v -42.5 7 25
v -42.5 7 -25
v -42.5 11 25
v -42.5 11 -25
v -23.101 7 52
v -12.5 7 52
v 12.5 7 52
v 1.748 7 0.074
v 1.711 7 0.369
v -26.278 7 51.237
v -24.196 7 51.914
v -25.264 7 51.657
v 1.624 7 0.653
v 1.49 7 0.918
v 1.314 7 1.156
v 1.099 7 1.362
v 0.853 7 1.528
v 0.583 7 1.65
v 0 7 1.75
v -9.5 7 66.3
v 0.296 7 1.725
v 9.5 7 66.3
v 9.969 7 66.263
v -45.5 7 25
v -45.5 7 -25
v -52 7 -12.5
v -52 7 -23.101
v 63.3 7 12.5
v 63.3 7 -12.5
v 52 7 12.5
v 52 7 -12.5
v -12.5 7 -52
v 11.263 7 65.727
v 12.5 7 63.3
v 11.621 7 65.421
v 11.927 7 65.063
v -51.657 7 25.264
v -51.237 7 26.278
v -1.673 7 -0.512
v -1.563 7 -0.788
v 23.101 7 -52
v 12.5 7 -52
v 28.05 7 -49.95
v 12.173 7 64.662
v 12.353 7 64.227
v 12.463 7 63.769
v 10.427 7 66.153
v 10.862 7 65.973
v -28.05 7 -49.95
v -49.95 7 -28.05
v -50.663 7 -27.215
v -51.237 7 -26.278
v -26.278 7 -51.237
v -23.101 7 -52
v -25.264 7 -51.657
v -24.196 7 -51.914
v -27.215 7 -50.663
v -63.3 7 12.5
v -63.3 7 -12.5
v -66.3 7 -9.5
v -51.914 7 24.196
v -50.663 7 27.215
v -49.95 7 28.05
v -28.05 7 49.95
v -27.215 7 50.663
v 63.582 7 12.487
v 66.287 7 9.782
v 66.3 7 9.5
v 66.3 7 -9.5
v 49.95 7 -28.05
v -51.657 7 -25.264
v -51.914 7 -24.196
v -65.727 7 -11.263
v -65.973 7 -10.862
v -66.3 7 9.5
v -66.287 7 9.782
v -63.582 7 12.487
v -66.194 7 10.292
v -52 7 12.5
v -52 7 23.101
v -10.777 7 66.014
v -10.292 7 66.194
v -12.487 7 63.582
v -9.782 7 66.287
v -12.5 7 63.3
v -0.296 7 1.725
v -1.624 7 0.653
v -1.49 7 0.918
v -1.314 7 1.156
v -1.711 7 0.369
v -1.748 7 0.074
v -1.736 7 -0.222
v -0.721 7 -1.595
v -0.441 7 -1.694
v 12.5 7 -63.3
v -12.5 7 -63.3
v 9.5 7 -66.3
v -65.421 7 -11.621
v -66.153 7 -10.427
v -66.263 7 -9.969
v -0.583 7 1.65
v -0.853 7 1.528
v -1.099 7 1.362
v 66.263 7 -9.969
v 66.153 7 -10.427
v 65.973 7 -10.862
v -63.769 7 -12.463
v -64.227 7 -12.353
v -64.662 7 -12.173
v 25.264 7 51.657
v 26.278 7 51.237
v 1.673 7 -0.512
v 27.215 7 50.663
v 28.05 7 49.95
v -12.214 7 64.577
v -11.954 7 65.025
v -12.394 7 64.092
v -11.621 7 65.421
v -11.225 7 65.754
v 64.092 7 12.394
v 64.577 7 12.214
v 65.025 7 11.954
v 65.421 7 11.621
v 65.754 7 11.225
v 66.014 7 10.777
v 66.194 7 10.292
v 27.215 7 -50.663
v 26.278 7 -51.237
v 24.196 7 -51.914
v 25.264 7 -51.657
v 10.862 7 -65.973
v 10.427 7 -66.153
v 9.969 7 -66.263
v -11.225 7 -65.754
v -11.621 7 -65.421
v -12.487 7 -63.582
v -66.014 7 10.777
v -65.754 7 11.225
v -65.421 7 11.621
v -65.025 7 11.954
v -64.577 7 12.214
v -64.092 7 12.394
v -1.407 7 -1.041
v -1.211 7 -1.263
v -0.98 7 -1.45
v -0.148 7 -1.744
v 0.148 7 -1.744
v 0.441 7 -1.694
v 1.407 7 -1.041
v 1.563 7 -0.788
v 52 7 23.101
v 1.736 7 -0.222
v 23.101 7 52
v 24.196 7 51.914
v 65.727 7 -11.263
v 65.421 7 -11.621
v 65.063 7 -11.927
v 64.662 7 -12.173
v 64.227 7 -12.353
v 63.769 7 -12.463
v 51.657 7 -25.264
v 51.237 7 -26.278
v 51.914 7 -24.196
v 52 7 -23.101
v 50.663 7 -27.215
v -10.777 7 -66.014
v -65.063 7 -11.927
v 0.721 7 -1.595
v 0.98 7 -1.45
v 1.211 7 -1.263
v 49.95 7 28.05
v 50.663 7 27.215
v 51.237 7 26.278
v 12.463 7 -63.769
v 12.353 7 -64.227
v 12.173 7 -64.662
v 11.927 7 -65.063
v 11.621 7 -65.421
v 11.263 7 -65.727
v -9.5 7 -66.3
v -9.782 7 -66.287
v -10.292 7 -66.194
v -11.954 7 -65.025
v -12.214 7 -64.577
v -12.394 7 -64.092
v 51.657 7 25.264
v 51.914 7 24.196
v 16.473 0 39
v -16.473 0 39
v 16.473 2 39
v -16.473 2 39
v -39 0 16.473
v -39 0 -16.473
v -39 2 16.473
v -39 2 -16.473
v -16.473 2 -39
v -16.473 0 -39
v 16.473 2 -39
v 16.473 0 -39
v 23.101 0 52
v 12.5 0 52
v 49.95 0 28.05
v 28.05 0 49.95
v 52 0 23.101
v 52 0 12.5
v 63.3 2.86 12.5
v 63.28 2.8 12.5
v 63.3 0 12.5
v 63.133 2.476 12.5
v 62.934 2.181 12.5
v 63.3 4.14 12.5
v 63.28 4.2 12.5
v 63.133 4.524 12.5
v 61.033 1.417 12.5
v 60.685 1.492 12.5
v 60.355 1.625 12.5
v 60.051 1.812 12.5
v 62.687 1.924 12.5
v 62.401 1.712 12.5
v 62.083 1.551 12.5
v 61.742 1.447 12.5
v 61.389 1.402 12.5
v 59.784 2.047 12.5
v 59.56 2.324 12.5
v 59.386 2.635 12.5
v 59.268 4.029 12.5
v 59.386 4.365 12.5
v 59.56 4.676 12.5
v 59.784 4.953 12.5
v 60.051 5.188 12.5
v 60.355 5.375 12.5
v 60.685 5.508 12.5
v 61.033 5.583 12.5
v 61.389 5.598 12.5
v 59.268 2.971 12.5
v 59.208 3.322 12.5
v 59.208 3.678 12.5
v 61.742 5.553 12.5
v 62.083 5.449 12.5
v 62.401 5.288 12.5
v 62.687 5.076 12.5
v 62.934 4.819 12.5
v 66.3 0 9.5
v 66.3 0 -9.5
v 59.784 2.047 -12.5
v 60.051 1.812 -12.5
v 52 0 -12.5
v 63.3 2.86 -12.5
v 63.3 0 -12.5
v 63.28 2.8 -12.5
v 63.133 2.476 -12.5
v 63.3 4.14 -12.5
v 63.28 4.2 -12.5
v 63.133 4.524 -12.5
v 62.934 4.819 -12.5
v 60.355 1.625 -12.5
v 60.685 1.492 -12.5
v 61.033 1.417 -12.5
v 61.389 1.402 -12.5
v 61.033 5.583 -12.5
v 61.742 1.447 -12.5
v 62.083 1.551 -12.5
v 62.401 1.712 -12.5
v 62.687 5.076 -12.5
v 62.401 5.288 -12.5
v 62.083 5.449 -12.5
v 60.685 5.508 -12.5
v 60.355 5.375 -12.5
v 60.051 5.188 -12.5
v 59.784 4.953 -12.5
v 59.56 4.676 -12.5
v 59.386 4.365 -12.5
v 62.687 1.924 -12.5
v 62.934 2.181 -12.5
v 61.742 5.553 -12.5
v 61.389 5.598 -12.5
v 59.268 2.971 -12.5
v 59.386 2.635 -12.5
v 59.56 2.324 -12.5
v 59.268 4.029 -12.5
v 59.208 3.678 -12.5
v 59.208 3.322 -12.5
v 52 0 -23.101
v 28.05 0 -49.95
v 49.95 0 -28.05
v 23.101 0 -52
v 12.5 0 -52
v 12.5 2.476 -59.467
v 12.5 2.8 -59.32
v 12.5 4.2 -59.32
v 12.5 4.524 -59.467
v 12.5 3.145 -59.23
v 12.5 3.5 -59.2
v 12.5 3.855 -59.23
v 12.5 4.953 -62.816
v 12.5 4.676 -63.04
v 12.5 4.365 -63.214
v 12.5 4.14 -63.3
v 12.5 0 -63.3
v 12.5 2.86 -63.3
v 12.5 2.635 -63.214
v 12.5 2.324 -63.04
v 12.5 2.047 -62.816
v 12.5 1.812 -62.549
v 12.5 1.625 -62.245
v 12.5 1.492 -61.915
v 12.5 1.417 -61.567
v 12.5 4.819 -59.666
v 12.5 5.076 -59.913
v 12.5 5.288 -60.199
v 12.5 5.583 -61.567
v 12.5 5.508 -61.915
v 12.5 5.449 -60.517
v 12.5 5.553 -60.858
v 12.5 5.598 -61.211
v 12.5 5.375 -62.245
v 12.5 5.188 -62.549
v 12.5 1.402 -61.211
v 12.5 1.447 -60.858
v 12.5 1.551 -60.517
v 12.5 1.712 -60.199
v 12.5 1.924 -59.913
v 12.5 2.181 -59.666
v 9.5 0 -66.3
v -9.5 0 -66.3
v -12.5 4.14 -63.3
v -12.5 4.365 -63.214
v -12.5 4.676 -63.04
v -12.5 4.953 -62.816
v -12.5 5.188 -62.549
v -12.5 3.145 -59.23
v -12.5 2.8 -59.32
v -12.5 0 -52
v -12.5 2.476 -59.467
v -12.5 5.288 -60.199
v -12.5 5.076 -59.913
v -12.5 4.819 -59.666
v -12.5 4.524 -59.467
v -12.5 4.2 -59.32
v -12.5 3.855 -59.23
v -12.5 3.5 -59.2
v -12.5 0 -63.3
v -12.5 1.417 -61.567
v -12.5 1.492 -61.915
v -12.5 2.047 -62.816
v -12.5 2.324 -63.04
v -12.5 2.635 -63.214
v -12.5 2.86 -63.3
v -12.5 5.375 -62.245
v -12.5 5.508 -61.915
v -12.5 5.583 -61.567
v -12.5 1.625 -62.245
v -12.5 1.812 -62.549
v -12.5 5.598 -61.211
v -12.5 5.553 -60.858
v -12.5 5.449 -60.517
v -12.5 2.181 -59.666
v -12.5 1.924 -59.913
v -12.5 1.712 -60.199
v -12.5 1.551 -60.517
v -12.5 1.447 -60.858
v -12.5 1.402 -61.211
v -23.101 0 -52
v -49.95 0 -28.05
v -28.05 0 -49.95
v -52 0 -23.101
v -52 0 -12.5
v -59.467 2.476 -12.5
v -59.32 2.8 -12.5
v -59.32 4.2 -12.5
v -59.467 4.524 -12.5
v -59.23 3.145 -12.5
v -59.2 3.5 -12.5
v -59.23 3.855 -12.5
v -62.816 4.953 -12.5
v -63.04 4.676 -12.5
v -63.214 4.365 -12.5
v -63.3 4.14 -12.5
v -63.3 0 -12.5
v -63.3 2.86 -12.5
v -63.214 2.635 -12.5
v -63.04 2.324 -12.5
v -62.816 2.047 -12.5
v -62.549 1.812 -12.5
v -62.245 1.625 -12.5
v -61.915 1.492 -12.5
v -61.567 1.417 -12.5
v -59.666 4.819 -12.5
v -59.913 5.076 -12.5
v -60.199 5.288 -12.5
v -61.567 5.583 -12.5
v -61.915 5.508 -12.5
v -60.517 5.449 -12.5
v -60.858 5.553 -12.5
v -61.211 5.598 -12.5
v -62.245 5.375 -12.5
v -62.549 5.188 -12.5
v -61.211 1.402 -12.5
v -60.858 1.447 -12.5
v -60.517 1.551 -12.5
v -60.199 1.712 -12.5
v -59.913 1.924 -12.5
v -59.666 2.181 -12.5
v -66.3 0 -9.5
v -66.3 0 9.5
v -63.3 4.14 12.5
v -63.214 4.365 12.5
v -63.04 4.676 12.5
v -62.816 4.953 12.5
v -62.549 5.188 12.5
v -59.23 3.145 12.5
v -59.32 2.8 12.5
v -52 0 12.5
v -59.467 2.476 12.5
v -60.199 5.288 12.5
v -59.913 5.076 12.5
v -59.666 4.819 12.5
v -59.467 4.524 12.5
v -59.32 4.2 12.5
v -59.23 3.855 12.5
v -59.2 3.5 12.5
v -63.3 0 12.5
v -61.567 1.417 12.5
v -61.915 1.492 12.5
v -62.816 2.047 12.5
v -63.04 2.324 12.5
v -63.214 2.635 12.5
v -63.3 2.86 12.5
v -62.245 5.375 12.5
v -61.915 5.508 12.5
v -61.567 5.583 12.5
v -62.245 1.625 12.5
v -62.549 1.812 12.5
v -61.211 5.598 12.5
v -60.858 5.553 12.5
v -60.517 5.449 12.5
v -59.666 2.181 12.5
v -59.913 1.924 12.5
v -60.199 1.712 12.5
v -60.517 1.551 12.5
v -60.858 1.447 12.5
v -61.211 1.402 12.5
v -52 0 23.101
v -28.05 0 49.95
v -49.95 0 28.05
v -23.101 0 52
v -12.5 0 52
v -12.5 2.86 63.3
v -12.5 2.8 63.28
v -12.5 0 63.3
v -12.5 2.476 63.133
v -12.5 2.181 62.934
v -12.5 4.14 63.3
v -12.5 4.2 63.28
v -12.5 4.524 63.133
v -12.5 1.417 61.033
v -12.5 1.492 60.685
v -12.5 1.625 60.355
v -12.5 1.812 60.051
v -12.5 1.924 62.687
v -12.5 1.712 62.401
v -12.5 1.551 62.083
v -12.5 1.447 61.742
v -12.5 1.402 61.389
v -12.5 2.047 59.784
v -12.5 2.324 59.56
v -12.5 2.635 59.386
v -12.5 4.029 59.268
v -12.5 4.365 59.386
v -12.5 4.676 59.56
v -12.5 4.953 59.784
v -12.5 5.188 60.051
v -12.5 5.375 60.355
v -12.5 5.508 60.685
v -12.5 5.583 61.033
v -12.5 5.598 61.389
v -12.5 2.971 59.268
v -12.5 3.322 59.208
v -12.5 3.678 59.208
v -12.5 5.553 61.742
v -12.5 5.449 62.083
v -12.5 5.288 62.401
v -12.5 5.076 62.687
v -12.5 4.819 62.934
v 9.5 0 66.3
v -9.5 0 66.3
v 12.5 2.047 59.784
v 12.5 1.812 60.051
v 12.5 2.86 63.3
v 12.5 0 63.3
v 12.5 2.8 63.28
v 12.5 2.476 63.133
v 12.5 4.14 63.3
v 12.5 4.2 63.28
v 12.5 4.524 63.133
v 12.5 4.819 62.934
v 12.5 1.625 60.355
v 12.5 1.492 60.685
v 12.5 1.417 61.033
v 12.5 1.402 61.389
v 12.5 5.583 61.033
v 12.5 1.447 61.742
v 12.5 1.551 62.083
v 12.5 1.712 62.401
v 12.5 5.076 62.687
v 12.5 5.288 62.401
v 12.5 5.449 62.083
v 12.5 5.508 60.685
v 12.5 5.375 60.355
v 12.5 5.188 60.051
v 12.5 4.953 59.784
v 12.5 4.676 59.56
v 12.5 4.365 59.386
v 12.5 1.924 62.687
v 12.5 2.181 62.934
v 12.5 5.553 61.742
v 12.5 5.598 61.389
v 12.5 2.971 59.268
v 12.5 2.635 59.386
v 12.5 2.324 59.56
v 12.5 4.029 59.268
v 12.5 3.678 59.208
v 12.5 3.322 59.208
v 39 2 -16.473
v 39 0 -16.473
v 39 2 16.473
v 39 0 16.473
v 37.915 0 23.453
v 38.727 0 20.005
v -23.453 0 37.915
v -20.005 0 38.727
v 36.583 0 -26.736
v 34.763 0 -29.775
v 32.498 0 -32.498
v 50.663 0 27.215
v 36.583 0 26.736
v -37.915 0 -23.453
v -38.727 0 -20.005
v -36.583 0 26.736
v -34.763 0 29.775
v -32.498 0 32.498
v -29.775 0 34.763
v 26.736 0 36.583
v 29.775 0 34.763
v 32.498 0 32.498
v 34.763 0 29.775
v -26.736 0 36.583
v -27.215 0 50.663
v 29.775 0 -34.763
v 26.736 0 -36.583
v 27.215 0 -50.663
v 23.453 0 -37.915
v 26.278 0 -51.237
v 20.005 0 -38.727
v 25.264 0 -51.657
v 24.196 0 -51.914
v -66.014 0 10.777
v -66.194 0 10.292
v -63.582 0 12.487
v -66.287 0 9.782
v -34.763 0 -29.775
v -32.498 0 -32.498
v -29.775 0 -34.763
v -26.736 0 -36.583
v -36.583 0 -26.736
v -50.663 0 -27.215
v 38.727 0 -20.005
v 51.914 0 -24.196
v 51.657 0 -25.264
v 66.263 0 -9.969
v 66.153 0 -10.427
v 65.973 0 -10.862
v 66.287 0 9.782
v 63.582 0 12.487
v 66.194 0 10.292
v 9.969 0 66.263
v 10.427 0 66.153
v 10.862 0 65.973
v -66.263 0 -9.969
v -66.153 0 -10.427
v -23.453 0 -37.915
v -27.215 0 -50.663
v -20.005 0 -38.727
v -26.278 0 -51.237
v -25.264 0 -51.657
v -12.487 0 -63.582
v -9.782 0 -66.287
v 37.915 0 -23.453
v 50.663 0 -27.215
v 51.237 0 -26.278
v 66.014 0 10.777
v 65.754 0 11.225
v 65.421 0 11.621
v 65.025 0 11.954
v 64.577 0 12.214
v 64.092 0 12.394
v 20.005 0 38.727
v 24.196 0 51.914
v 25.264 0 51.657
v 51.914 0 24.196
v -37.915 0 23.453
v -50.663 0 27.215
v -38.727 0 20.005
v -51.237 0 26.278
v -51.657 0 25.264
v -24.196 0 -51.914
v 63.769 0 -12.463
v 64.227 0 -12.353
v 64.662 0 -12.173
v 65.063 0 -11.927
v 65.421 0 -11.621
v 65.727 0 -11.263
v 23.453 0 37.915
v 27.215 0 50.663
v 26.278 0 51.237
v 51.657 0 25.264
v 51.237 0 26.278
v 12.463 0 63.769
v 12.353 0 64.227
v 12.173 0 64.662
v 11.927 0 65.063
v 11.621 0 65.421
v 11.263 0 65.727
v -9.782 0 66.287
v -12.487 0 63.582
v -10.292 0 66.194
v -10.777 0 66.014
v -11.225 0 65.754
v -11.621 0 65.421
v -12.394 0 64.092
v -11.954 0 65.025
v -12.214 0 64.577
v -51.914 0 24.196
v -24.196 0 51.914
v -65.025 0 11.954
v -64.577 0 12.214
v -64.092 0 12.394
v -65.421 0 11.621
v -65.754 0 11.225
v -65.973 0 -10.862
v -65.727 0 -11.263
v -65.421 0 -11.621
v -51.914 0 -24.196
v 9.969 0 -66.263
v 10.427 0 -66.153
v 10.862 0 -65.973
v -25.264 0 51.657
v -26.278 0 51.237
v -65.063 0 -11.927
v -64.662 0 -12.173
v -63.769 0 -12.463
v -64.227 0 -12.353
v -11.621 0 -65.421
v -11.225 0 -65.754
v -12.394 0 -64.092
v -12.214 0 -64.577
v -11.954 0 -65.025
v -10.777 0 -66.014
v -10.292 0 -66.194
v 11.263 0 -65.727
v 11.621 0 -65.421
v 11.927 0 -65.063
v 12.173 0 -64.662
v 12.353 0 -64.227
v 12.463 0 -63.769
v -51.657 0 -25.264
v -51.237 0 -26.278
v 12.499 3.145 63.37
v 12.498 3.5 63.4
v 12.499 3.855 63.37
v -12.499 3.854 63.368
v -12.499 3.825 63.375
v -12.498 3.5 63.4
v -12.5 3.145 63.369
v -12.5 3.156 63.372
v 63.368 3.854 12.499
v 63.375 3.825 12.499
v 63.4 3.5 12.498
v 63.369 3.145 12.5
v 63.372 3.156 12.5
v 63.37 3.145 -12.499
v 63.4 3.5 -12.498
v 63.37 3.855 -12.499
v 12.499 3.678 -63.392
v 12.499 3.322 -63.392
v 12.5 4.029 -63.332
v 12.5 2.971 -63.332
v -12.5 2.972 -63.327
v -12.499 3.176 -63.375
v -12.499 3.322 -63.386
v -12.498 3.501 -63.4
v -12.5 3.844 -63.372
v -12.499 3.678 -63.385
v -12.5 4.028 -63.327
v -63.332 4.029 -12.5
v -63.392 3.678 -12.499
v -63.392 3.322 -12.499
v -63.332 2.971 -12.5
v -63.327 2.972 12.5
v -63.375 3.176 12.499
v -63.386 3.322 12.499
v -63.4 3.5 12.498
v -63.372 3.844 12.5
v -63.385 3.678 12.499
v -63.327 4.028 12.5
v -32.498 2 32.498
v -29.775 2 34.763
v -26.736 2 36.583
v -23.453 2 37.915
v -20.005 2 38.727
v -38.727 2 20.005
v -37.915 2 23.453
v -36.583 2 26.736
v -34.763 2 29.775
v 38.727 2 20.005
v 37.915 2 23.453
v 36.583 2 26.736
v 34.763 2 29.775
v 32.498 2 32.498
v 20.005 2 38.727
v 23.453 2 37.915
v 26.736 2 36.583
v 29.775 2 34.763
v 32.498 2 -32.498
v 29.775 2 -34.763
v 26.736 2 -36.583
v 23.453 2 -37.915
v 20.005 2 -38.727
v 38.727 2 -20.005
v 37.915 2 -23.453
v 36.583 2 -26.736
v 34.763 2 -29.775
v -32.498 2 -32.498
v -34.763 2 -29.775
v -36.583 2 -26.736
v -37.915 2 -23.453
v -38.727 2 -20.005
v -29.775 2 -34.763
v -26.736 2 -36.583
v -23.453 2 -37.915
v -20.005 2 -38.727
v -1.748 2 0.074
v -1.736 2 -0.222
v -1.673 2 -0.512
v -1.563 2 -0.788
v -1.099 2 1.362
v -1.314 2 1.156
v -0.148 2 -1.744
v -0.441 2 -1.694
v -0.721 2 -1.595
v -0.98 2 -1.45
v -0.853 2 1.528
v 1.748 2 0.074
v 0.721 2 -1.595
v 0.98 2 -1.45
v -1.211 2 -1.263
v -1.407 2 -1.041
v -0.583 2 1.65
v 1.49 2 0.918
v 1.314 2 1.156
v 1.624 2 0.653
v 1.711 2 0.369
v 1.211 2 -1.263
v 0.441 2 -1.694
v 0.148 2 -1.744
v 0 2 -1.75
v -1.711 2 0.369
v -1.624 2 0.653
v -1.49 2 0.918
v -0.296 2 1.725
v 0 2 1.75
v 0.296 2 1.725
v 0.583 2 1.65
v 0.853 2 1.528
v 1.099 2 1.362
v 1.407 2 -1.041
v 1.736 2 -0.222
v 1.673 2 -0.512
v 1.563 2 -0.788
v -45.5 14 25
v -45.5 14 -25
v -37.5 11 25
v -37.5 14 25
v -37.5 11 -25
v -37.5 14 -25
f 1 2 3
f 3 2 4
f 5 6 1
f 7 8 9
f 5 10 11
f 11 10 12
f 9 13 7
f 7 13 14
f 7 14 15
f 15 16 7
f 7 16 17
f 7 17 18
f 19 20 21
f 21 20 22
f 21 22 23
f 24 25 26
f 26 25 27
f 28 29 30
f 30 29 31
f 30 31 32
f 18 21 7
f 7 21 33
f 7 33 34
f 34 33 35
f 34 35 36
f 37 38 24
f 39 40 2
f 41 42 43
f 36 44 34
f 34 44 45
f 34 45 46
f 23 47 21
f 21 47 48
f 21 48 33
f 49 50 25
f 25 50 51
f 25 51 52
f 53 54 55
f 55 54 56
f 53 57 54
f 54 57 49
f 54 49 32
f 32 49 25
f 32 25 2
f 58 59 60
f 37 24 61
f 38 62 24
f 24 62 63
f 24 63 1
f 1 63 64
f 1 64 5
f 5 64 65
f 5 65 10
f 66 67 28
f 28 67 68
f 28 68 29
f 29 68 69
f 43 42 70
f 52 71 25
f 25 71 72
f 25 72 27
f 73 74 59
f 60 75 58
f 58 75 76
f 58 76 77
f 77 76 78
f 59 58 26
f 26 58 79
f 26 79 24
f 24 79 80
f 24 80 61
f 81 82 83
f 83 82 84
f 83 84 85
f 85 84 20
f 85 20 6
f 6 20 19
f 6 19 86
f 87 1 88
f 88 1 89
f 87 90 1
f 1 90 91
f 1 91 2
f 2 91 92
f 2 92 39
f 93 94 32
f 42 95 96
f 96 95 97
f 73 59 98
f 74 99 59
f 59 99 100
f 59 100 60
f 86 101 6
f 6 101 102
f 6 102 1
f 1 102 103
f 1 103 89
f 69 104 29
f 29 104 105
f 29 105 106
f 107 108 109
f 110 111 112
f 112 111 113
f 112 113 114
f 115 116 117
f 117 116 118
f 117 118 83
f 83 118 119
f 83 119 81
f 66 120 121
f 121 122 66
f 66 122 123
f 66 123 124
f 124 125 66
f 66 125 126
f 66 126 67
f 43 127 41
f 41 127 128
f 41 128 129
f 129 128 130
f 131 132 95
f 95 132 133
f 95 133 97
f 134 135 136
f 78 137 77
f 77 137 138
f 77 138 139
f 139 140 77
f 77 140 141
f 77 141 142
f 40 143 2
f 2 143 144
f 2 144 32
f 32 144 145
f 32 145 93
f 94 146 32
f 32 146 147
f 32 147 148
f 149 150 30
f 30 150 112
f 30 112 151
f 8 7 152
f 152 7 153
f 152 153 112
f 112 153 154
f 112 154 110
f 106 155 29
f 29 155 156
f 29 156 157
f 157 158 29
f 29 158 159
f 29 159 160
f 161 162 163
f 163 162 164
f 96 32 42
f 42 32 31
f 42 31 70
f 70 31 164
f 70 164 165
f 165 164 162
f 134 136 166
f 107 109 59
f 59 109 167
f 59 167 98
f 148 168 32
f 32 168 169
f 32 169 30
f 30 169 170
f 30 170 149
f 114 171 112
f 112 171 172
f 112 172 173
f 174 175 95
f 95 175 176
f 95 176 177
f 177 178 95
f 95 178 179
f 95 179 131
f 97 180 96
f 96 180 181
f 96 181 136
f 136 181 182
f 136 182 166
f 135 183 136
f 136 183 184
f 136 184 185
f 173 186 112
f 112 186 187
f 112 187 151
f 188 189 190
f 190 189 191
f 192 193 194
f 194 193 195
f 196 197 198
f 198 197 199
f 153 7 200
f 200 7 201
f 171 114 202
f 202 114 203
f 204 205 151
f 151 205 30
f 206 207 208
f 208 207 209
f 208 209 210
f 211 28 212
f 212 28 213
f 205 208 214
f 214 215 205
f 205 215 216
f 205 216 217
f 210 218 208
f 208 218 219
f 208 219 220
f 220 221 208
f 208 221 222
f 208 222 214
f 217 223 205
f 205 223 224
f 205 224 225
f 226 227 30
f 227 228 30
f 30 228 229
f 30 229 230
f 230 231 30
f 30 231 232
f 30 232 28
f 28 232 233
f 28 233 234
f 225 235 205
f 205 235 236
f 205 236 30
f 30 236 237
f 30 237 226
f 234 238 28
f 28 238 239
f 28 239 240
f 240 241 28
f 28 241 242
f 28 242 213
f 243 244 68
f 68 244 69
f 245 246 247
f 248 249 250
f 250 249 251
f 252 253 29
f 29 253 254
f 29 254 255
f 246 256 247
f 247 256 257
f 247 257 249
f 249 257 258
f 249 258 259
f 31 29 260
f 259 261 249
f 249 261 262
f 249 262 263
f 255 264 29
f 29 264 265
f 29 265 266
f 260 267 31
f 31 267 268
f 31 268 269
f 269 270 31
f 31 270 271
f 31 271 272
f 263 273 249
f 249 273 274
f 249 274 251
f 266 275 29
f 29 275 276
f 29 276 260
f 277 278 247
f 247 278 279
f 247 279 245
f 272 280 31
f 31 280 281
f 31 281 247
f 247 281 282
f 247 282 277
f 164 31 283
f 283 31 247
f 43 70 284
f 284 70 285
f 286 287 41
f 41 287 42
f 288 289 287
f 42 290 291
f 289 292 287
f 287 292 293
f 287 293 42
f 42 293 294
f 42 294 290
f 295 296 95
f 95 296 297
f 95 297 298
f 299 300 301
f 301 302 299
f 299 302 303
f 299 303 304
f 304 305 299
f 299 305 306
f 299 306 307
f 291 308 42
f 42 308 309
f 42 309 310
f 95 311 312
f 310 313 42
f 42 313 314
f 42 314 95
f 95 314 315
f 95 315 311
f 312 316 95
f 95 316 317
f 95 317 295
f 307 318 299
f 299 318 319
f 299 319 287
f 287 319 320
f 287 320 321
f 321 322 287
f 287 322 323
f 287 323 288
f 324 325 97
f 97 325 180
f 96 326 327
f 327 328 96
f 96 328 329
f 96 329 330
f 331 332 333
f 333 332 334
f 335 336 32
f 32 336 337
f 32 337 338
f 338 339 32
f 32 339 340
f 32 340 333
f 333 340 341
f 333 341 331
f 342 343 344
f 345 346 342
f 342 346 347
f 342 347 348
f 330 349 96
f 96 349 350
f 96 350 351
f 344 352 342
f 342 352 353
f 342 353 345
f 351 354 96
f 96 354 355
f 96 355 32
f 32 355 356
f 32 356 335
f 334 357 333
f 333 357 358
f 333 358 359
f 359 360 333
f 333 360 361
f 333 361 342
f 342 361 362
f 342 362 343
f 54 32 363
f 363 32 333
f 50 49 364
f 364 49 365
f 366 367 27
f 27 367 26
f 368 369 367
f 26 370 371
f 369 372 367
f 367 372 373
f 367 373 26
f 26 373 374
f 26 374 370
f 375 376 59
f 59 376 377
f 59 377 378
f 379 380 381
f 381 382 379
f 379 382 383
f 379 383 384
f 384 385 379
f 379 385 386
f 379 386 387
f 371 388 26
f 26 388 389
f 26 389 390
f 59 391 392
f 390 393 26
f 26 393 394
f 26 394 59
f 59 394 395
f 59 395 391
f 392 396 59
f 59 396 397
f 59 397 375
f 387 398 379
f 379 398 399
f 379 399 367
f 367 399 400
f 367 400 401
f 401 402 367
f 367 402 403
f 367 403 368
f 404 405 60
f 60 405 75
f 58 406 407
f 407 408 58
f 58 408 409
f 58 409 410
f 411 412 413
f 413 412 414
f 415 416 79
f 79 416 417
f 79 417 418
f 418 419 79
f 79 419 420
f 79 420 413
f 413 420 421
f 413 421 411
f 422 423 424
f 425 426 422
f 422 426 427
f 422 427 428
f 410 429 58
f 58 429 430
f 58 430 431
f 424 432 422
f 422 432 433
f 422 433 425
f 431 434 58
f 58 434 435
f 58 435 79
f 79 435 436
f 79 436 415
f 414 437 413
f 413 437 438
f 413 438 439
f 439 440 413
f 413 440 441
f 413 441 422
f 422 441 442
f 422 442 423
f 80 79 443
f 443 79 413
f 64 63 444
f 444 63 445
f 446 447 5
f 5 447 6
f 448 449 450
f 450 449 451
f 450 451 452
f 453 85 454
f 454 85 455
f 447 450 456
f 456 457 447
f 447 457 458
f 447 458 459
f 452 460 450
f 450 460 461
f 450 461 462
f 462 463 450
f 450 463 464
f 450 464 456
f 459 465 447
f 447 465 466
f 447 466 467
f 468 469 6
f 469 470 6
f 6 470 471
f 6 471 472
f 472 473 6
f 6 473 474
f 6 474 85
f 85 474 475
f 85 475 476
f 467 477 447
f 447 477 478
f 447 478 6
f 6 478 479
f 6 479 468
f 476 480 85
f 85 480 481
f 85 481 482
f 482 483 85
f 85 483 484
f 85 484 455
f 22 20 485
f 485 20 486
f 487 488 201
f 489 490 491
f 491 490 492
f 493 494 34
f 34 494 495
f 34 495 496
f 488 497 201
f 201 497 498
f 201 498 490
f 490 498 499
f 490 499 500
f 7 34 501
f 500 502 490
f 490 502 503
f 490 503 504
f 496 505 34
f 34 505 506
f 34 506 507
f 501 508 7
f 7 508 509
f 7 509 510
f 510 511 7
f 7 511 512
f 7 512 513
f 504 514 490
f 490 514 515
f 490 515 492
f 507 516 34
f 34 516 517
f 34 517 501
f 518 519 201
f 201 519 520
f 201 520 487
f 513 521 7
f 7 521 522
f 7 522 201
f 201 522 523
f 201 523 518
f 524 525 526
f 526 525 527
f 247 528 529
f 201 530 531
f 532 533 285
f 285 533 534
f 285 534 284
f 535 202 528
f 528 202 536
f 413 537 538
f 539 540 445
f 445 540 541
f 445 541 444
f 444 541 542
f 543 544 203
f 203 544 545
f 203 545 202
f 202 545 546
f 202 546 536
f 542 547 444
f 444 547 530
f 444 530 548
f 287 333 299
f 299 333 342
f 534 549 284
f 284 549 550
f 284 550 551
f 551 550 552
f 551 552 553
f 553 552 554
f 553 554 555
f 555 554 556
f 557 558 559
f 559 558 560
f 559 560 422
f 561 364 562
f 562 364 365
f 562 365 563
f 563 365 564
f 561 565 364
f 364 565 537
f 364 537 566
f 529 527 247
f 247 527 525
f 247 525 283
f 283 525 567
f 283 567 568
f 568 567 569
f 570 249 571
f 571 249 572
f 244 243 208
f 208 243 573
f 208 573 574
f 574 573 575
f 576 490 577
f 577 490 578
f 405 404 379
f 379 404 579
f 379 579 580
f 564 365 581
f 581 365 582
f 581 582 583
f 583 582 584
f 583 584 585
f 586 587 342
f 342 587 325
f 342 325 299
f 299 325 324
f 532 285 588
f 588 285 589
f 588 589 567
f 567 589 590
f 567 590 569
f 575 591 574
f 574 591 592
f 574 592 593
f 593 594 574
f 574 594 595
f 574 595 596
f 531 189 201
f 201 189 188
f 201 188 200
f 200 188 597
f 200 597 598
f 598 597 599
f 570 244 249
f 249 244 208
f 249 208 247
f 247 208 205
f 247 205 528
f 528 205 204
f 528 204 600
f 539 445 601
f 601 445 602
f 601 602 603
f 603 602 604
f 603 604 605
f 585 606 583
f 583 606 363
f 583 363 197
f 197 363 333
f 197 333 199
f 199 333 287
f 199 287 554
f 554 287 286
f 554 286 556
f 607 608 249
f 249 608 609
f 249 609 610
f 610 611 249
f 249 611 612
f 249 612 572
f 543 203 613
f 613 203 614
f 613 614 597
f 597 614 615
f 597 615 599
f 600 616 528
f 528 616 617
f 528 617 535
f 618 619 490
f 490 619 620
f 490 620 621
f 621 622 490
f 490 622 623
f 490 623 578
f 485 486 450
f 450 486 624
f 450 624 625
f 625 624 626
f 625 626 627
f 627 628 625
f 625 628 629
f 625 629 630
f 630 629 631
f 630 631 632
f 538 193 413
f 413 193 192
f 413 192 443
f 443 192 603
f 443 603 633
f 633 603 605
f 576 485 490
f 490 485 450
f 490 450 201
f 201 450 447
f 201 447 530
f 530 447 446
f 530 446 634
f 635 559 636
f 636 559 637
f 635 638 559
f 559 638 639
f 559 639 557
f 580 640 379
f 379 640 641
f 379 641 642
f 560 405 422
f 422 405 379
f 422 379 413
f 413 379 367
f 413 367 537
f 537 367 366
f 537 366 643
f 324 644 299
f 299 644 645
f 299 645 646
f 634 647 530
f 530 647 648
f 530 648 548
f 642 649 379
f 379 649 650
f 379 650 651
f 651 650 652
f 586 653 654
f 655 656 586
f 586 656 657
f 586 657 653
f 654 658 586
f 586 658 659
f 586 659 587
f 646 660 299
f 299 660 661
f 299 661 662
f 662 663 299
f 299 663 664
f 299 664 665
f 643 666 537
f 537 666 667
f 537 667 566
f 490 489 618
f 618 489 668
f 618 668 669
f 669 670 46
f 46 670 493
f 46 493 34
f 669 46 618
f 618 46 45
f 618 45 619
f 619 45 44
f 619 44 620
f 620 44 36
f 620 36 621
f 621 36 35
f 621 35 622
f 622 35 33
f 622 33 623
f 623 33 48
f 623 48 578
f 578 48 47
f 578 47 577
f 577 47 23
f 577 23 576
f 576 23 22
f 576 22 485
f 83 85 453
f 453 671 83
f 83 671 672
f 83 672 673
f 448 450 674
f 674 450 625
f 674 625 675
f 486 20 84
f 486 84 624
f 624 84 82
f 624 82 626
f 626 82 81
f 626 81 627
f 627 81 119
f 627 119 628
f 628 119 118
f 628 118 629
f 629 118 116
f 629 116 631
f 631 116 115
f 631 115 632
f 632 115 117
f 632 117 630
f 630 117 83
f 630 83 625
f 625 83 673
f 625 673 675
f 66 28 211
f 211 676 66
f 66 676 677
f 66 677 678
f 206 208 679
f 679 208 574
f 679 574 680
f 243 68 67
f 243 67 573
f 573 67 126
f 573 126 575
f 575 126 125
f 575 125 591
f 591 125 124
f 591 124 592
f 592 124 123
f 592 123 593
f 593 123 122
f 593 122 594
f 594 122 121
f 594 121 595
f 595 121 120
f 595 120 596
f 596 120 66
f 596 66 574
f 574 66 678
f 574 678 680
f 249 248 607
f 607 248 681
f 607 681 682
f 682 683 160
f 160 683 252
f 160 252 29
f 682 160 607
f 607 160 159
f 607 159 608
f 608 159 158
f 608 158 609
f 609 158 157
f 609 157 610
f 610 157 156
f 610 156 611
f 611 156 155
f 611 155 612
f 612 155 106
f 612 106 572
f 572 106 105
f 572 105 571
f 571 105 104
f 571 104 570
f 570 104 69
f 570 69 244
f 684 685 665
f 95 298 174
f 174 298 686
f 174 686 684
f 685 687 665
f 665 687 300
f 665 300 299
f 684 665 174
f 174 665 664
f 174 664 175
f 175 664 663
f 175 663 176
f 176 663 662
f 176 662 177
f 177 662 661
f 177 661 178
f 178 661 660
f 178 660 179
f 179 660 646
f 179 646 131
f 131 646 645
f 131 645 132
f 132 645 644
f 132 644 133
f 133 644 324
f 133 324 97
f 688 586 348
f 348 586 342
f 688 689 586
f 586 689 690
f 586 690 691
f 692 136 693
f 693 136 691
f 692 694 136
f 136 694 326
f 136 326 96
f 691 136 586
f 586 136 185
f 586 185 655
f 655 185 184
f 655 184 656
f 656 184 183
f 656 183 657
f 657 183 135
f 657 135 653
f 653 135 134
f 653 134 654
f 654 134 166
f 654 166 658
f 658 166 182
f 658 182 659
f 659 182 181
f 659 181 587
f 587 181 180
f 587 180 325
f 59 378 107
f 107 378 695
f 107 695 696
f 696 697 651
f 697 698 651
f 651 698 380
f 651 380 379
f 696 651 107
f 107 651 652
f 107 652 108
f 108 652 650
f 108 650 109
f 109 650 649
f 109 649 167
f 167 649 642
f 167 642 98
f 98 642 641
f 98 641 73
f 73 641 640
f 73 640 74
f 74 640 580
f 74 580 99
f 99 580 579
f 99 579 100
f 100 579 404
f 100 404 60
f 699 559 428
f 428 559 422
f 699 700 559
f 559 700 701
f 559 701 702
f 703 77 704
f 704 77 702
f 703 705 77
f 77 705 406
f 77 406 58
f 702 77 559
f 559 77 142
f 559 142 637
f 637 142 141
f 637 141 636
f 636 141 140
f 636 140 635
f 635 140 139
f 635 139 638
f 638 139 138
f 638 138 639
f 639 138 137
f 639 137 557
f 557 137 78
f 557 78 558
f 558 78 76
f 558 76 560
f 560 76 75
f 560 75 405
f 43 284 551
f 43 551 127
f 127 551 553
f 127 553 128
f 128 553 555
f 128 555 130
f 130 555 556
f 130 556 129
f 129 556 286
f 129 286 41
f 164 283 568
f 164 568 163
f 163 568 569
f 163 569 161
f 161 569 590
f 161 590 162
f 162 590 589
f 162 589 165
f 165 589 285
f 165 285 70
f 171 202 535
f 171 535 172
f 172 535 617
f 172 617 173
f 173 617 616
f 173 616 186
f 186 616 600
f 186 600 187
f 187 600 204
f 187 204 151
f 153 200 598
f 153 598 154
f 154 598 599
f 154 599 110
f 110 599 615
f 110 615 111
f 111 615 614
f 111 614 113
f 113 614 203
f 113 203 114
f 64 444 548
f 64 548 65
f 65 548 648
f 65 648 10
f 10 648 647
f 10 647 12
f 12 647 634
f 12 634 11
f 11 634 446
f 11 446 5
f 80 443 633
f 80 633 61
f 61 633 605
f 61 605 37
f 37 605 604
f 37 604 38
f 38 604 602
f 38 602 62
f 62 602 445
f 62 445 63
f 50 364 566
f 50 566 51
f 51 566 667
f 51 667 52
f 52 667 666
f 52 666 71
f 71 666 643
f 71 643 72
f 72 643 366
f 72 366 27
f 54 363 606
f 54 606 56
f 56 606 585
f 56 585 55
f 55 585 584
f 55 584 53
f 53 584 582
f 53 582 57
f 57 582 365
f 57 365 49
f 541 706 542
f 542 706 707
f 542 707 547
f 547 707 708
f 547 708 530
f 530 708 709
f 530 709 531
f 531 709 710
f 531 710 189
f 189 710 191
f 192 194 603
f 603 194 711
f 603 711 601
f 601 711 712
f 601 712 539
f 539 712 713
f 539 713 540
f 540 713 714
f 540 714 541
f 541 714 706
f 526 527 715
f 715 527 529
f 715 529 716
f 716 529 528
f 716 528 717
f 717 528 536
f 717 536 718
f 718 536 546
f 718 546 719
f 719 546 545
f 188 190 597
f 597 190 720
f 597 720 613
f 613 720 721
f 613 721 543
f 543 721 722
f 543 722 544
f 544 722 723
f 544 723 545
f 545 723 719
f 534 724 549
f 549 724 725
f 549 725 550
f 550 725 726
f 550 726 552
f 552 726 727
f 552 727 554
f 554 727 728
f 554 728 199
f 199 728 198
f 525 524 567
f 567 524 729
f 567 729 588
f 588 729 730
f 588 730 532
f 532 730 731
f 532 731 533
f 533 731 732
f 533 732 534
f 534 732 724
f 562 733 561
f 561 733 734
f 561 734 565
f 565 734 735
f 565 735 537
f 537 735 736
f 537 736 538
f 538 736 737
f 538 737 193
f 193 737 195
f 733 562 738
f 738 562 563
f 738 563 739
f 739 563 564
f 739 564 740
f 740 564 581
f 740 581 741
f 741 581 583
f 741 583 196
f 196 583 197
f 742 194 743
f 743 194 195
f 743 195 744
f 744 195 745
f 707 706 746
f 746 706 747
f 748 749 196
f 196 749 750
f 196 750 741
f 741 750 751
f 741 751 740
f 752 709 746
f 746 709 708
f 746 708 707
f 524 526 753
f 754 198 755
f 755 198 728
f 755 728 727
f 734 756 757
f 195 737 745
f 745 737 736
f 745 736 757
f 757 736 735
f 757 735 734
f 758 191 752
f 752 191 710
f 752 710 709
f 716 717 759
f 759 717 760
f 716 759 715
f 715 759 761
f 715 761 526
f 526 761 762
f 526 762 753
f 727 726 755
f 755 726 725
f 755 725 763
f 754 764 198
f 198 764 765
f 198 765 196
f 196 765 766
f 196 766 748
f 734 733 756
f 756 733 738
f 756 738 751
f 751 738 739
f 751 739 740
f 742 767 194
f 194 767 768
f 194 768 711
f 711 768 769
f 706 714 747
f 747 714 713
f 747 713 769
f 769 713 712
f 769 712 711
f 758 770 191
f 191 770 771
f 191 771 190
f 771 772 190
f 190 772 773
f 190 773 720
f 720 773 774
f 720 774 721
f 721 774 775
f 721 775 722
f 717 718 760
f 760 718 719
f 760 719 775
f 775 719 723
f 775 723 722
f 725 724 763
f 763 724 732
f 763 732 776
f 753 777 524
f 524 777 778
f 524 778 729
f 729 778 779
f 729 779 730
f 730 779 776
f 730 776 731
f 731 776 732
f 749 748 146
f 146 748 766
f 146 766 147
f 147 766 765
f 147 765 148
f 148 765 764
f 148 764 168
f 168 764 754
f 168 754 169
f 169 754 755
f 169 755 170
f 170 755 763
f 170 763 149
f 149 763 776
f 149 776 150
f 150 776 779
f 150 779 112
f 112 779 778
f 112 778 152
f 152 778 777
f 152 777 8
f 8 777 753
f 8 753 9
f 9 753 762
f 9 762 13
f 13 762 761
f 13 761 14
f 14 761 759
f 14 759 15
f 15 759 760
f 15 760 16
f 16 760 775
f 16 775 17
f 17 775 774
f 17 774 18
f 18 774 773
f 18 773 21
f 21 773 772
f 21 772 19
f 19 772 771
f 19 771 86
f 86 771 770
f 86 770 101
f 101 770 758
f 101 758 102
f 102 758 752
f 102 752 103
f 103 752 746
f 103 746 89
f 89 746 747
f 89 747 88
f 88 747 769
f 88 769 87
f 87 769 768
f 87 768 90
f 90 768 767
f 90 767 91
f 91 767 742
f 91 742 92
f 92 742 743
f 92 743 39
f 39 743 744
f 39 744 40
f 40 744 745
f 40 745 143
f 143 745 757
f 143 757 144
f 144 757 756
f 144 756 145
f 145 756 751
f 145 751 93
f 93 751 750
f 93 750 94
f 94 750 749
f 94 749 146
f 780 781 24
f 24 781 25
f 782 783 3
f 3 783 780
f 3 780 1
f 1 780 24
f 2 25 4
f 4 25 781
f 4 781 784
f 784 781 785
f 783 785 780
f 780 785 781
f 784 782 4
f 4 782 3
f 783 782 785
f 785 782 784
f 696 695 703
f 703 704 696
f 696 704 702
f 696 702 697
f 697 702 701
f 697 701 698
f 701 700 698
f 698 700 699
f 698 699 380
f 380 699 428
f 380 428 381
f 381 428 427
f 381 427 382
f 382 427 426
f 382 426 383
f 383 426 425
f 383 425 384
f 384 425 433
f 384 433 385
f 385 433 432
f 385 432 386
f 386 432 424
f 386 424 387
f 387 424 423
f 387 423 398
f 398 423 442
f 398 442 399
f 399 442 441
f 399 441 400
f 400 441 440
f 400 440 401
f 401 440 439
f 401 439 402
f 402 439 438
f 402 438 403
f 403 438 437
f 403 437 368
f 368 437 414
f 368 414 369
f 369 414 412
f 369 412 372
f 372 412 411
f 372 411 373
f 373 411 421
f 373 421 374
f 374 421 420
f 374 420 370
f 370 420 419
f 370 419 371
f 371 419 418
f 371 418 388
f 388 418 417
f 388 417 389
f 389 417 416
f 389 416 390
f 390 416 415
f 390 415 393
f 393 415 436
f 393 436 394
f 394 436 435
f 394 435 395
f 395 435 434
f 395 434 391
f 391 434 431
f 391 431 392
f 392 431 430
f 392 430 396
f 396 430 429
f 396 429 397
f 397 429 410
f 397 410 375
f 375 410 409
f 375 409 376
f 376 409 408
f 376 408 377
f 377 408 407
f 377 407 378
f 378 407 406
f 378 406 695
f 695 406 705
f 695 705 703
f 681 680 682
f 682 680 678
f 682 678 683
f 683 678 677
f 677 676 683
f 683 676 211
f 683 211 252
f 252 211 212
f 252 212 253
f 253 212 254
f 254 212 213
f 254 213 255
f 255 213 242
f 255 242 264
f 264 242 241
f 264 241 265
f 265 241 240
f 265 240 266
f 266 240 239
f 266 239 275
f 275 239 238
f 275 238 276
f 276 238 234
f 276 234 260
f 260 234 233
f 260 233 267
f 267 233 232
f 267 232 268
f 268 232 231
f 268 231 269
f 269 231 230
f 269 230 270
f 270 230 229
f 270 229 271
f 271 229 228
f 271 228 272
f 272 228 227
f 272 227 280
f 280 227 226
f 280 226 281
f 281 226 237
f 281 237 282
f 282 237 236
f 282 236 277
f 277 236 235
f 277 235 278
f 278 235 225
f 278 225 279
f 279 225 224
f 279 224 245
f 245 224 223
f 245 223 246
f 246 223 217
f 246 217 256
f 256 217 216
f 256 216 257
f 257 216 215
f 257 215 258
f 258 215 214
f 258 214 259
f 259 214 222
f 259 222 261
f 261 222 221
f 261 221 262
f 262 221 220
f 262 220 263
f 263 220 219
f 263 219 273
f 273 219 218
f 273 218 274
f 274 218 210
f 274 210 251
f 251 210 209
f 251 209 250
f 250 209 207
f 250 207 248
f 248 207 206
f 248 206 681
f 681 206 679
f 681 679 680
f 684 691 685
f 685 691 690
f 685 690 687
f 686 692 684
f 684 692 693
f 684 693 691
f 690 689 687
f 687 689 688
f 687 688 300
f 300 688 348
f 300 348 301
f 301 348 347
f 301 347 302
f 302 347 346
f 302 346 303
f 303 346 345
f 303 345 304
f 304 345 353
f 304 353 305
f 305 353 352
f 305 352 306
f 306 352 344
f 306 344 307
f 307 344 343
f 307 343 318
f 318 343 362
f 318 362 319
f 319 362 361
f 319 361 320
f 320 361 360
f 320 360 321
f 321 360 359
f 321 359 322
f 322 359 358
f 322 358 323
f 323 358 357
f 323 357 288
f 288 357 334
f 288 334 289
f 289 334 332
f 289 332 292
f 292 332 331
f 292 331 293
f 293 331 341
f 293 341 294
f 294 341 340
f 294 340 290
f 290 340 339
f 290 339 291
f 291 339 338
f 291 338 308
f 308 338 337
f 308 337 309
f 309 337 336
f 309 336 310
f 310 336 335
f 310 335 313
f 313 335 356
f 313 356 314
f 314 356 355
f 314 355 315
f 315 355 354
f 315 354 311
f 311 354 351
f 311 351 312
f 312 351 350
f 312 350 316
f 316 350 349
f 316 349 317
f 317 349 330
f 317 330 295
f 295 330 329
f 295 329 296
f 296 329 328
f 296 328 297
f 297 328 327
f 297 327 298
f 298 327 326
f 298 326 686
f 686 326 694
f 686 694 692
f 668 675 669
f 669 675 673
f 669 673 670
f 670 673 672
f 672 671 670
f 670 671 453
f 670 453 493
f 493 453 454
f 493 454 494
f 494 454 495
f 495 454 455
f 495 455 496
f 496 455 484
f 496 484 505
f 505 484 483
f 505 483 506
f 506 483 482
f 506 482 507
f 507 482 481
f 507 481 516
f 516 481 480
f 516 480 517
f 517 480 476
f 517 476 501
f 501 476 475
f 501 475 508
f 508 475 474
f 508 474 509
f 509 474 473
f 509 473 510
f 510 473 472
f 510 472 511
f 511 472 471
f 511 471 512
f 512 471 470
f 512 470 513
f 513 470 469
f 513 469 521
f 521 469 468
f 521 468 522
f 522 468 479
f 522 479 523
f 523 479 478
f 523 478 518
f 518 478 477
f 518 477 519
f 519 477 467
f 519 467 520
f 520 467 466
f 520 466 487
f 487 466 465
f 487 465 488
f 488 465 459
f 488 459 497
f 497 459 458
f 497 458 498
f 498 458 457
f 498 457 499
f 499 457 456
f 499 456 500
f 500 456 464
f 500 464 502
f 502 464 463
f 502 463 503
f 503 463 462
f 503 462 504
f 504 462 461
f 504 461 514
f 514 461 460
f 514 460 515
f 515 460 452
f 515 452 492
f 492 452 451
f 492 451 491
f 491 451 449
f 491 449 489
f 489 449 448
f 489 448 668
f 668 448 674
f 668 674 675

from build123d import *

# Parameters (mm, degrees)
SKETCH_1_W          = 14.3
SKETCH_1_H          = 25
SKETCH_1_W_2        = 25
SKETCH_1_H_2        = 14.3
EXTRUDE_1_DEPTH     = 7
FILLET_1_R          = 3
FILLET_2_R          = 7
FILLET_3_R          = 23
EXTRUDE_START       = -5
EXTRUDE_2_DEPTH     = 5
SKETCH_7_R          = 1.75
CUT_EXTRUDE_5_DEPTH = 95.023294986
SKETCH_9_W          = 3
SKETCH_9_H          = 50
EXTRUDE_3_DEPTH     = 7
SKETCH_10_W         = 50
SKETCH_10_H         = 3
EXTRUDE_4_DEPTH     = 5
SKETCH_11_R         = 2.1
CUT_EXTRUDE_6_DEPTH = 104.928485027
SKETCH_12_R         = 2.1
CUT_EXTRUDE_7_DEPTH = 104.928485103


with BuildPart() as part:
    # 스케치1 → 보스-돌출1 (new body)
    with BuildSketch(Plane(origin=(0, 0, 0), x_dir=(1, 0, 0), z_dir=(0, 1, 0))):
        Polygon((-26, 52), (-39, 39), (-26, 39), (26, 39), (39, 39), (26, 52), (12.5, 52), (-12.5, 52), align=None)
        Polygon((-26, 39), (-39, 39), (-39, 26), align=None)
        Polygon((-39, 26), (-39, 39), (-52, 26), (-52, 12.5), (-52, -12.5), (-52, -26), (-39, -39), (-39, -26), align=None)
        with Locations((-59.15, 0)):
            Rectangle(SKETCH_1_W, SKETCH_1_H)
        with Locations((0, 59.15)):
            Rectangle(SKETCH_1_W_2, SKETCH_1_H_2)
        Polygon((39, 39), (26, 39), (39, 26), align=None)
        Polygon((52, 26), (39, 39), (39, 26), (39, -26), (39, -39), (52, -26), (52, -12.5), (52, 12.5), align=None)
        with Locations((59.15, 0)):
            Rectangle(SKETCH_1_W, SKETCH_1_H)
        Polygon((39, -39), (39, -26), (26, -39), align=None)
        Polygon((-26, -39), (-39, -39), (-26, -52), (-12.5, -52), (12.5, -52), (26, -52), (39, -39), (26, -39), align=None)
        Polygon((-26, -39), (-39, -26), (-39, -39), align=None)
        with Locations((0, -59.15)):
            Rectangle(SKETCH_1_W_2, SKETCH_1_H_2)
    extrude(amount=EXTRUDE_1_DEPTH)

    # 필렛1
    fillet_1_edges = [part.edges().sort_by_distance(p)[0] for p in [
        (12.5, 3.5, 66.3),
        (-12.5, 3.5, 66.3),
        (-66.3, 3.5, 12.5),
        (-66.3, 3.5, -12.5),
        (-12.5, 3.5, -66.3),
        (12.5, 3.5, -66.3),
        (66.3, 3.5, -12.5),
        (66.3, 3.5, 12.5),
    ]]
    fillet(fillet_1_edges, radius=FILLET_1_R)

    # 필렛2
    fillet_2_edges = [part.edges().sort_by_distance(p)[0] for p in [
        (-26, 3.5, 52),
        (-52, 3.5, 26),
        (-52, 3.5, -26),
        (-26, 3.5, -52),
        (26, 3.5, -52),
        (52, 3.5, -26),
        (52, 3.5, 26),
        (26, 3.5, 52),
    ]]
    fillet(fillet_2_edges, radius=FILLET_2_R)

    # 필렛3
    # the kernel refuses this fillet: 23 mm, written as the material it adds along each edge
    with BuildSketch(Plane(origin=(-39, 0, 26), x_dir=(0, 0, -1), z_dir=(0, 1, 0))) as fillet_3_piece_1:
        with BuildLine():
            CenterArc((FILLET_3_R * 0.414213562373, -FILLET_3_R), FILLET_3_R, 90, 45)
            Line((-FILLET_3_R * 0.292893218813, -FILLET_3_R * 0.292893218813), (0, 0))
            Line((0, 0), (FILLET_3_R * 0.414213562373, 0))
        make_face()
    extrude(amount=7)
    with BuildSketch(Plane(origin=(-26, 0, 39), x_dir=(1, 0, 0), z_dir=(0, 1, 0)), Plane(origin=(26, 0, 39), x_dir=(0.7071067811865479, 0, -0.7071067811865471), z_dir=(0, 1, 0)), Plane(origin=(39, 0, 26), x_dir=(0, 0, -1), z_dir=(0, 1, 0)), Plane(origin=(39, 0, -26), x_dir=(-0.7071067811865476, 0, -0.7071067811865476), z_dir=(0, 1, 0)), Plane(origin=(26, 0, -39), x_dir=(-1, 0, 0), z_dir=(0, 1, 0)), Plane(origin=(-26, 0, -39), x_dir=(-0.7071067811865471, 0, 0.7071067811865479), z_dir=(0, 1, 0)), Plane(origin=(-39, 0, -26), x_dir=(0, 0, 1), z_dir=(0, 1, 0))) as fillet_3_piece_2:
        with BuildLine():
            CenterArc((FILLET_3_R * 0.414213562373, FILLET_3_R), FILLET_3_R, 225, 45)
            Line((-FILLET_3_R * 0.292893218813, FILLET_3_R * 0.292893218813), (0, 0))
            Line((0, 0), (FILLET_3_R * 0.414213562373, 0))
        make_face()
    extrude(amount=7)

    # 스케치6 → 보스-돌출2 (add)
    with BuildSketch(Plane(origin=(0, 7, 0), x_dir=(1, 0, 0), z_dir=(0, 1, 0)).offset(EXTRUDE_START)):
        with BuildLine():
            Line((16.473088065, 39), (-16.473088065, 39))
            ThreePointArc((-16.473088065, 39), (-25.120040329, 37.312677367), (-32.4982797, 32.4982797))
            ThreePointArc((-32.4982797, 32.4982797), (-37.312677367, 25.120040329), (-39, 16.473088065))
            Line((-39, 16.473088065), (-39, -16.473088065))
            ThreePointArc((-39, -16.473088065), (-37.312677367, -25.120040329), (-32.4982797, -32.4982797))
            ThreePointArc((-32.4982797, -32.4982797), (-25.120040329, -37.312677367), (-16.473088065, -39))
            Line((-16.473088065, -39), (16.473088065, -39))
            ThreePointArc((16.473088065, -39), (25.120040329, -37.312677367), (32.4982797, -32.4982797))
            ThreePointArc((32.4982797, -32.4982797), (37.312677367, -25.120040329), (39, -16.473088065))
            Line((39, -16.473088065), (39, 16.473088065))
            ThreePointArc((39, 16.473088065), (37.312677367, 25.120040329), (32.4982797, 32.4982797))
            ThreePointArc((32.4982797, 32.4982797), (25.120040329, 37.312677367), (16.473088065, 39))
        make_face()
    extrude(amount=EXTRUDE_2_DEPTH)

    # 스케치7 → 컷-돌출5 (cut, through all)
    with BuildSketch(Plane(origin=(0, 7, 0), x_dir=(1, 0, 0), z_dir=(0, 1, 0))):
        with Locations(Location((0, 0, 0), (0, 0, 270))):
            Circle(SKETCH_7_R)
    extrude(amount=-CUT_EXTRUDE_5_DEPTH, mode=Mode.SUBTRACT)

    # 스케치9 → 보스-돌출3 (add)
    with BuildSketch(Plane(origin=(0, 7, 0), x_dir=(1, 0, 0), z_dir=(0, 1, 0))):
        with Locations((-44, 0)):
            Rectangle(SKETCH_9_W, SKETCH_9_H)
    extrude(amount=EXTRUDE_3_DEPTH)

    # 스케치10 → 보스-돌출4 (add)
    with BuildSketch(Plane(origin=(-42.5, 0, 0), x_dir=(0, 0, -1), z_dir=(1, 0, 0))):
        with Locations((0, 12.5)):
            Rectangle(SKETCH_10_W, SKETCH_10_H)
    extrude(amount=EXTRUDE_4_DEPTH)

    # 스케치11 → 컷-돌출6 (cut, through all)
    with BuildSketch(Plane.XY.offset(12.5)):
        with Locations(Location((-61.3, 3.5, 0), (0, 0, 197.752790162))):
            Circle(SKETCH_11_R)
        with Locations(Location((61.3, 3.5, 0), (0, 0, 17.752790162))):
            Circle(SKETCH_11_R)
    extrude(amount=-CUT_EXTRUDE_6_DEPTH, mode=Mode.SUBTRACT)

    # 스케치12 → 컷-돌출7 (cut, through all)
    with BuildSketch(Plane.ZY.offset(12.5)):
        with Locations(Location((-61.3, 3.5, 0), (0, 0, 162.247209838))):
            Circle(SKETCH_12_R)
        with Locations(Location((61.3, 3.5, 0), (0, 0, 17.752790162))):
            Circle(SKETCH_12_R)
    extrude(amount=-CUT_EXTRUDE_7_DEPTH, mode=Mode.SUBTRACT)


solid = part.part
